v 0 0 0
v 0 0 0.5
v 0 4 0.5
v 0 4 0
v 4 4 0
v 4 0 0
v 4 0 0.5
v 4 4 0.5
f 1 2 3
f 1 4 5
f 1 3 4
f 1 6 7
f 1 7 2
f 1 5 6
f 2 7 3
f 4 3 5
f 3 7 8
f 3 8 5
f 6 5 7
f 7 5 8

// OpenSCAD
/* Warning, this is a very basic generator with a lot of approximation 
input data : [XQFN, TDX, 4x4x0.5mm, 28, , A, C04-00457A]
generated by com.zoubworld.electronics.cad.model3d.Basic
Date : Sun Feb 15 10:50:48 CET 2026
*/

//body
color("black")
translate([0,0,0])
cube([4.0,4.0,0.5], center=false);
